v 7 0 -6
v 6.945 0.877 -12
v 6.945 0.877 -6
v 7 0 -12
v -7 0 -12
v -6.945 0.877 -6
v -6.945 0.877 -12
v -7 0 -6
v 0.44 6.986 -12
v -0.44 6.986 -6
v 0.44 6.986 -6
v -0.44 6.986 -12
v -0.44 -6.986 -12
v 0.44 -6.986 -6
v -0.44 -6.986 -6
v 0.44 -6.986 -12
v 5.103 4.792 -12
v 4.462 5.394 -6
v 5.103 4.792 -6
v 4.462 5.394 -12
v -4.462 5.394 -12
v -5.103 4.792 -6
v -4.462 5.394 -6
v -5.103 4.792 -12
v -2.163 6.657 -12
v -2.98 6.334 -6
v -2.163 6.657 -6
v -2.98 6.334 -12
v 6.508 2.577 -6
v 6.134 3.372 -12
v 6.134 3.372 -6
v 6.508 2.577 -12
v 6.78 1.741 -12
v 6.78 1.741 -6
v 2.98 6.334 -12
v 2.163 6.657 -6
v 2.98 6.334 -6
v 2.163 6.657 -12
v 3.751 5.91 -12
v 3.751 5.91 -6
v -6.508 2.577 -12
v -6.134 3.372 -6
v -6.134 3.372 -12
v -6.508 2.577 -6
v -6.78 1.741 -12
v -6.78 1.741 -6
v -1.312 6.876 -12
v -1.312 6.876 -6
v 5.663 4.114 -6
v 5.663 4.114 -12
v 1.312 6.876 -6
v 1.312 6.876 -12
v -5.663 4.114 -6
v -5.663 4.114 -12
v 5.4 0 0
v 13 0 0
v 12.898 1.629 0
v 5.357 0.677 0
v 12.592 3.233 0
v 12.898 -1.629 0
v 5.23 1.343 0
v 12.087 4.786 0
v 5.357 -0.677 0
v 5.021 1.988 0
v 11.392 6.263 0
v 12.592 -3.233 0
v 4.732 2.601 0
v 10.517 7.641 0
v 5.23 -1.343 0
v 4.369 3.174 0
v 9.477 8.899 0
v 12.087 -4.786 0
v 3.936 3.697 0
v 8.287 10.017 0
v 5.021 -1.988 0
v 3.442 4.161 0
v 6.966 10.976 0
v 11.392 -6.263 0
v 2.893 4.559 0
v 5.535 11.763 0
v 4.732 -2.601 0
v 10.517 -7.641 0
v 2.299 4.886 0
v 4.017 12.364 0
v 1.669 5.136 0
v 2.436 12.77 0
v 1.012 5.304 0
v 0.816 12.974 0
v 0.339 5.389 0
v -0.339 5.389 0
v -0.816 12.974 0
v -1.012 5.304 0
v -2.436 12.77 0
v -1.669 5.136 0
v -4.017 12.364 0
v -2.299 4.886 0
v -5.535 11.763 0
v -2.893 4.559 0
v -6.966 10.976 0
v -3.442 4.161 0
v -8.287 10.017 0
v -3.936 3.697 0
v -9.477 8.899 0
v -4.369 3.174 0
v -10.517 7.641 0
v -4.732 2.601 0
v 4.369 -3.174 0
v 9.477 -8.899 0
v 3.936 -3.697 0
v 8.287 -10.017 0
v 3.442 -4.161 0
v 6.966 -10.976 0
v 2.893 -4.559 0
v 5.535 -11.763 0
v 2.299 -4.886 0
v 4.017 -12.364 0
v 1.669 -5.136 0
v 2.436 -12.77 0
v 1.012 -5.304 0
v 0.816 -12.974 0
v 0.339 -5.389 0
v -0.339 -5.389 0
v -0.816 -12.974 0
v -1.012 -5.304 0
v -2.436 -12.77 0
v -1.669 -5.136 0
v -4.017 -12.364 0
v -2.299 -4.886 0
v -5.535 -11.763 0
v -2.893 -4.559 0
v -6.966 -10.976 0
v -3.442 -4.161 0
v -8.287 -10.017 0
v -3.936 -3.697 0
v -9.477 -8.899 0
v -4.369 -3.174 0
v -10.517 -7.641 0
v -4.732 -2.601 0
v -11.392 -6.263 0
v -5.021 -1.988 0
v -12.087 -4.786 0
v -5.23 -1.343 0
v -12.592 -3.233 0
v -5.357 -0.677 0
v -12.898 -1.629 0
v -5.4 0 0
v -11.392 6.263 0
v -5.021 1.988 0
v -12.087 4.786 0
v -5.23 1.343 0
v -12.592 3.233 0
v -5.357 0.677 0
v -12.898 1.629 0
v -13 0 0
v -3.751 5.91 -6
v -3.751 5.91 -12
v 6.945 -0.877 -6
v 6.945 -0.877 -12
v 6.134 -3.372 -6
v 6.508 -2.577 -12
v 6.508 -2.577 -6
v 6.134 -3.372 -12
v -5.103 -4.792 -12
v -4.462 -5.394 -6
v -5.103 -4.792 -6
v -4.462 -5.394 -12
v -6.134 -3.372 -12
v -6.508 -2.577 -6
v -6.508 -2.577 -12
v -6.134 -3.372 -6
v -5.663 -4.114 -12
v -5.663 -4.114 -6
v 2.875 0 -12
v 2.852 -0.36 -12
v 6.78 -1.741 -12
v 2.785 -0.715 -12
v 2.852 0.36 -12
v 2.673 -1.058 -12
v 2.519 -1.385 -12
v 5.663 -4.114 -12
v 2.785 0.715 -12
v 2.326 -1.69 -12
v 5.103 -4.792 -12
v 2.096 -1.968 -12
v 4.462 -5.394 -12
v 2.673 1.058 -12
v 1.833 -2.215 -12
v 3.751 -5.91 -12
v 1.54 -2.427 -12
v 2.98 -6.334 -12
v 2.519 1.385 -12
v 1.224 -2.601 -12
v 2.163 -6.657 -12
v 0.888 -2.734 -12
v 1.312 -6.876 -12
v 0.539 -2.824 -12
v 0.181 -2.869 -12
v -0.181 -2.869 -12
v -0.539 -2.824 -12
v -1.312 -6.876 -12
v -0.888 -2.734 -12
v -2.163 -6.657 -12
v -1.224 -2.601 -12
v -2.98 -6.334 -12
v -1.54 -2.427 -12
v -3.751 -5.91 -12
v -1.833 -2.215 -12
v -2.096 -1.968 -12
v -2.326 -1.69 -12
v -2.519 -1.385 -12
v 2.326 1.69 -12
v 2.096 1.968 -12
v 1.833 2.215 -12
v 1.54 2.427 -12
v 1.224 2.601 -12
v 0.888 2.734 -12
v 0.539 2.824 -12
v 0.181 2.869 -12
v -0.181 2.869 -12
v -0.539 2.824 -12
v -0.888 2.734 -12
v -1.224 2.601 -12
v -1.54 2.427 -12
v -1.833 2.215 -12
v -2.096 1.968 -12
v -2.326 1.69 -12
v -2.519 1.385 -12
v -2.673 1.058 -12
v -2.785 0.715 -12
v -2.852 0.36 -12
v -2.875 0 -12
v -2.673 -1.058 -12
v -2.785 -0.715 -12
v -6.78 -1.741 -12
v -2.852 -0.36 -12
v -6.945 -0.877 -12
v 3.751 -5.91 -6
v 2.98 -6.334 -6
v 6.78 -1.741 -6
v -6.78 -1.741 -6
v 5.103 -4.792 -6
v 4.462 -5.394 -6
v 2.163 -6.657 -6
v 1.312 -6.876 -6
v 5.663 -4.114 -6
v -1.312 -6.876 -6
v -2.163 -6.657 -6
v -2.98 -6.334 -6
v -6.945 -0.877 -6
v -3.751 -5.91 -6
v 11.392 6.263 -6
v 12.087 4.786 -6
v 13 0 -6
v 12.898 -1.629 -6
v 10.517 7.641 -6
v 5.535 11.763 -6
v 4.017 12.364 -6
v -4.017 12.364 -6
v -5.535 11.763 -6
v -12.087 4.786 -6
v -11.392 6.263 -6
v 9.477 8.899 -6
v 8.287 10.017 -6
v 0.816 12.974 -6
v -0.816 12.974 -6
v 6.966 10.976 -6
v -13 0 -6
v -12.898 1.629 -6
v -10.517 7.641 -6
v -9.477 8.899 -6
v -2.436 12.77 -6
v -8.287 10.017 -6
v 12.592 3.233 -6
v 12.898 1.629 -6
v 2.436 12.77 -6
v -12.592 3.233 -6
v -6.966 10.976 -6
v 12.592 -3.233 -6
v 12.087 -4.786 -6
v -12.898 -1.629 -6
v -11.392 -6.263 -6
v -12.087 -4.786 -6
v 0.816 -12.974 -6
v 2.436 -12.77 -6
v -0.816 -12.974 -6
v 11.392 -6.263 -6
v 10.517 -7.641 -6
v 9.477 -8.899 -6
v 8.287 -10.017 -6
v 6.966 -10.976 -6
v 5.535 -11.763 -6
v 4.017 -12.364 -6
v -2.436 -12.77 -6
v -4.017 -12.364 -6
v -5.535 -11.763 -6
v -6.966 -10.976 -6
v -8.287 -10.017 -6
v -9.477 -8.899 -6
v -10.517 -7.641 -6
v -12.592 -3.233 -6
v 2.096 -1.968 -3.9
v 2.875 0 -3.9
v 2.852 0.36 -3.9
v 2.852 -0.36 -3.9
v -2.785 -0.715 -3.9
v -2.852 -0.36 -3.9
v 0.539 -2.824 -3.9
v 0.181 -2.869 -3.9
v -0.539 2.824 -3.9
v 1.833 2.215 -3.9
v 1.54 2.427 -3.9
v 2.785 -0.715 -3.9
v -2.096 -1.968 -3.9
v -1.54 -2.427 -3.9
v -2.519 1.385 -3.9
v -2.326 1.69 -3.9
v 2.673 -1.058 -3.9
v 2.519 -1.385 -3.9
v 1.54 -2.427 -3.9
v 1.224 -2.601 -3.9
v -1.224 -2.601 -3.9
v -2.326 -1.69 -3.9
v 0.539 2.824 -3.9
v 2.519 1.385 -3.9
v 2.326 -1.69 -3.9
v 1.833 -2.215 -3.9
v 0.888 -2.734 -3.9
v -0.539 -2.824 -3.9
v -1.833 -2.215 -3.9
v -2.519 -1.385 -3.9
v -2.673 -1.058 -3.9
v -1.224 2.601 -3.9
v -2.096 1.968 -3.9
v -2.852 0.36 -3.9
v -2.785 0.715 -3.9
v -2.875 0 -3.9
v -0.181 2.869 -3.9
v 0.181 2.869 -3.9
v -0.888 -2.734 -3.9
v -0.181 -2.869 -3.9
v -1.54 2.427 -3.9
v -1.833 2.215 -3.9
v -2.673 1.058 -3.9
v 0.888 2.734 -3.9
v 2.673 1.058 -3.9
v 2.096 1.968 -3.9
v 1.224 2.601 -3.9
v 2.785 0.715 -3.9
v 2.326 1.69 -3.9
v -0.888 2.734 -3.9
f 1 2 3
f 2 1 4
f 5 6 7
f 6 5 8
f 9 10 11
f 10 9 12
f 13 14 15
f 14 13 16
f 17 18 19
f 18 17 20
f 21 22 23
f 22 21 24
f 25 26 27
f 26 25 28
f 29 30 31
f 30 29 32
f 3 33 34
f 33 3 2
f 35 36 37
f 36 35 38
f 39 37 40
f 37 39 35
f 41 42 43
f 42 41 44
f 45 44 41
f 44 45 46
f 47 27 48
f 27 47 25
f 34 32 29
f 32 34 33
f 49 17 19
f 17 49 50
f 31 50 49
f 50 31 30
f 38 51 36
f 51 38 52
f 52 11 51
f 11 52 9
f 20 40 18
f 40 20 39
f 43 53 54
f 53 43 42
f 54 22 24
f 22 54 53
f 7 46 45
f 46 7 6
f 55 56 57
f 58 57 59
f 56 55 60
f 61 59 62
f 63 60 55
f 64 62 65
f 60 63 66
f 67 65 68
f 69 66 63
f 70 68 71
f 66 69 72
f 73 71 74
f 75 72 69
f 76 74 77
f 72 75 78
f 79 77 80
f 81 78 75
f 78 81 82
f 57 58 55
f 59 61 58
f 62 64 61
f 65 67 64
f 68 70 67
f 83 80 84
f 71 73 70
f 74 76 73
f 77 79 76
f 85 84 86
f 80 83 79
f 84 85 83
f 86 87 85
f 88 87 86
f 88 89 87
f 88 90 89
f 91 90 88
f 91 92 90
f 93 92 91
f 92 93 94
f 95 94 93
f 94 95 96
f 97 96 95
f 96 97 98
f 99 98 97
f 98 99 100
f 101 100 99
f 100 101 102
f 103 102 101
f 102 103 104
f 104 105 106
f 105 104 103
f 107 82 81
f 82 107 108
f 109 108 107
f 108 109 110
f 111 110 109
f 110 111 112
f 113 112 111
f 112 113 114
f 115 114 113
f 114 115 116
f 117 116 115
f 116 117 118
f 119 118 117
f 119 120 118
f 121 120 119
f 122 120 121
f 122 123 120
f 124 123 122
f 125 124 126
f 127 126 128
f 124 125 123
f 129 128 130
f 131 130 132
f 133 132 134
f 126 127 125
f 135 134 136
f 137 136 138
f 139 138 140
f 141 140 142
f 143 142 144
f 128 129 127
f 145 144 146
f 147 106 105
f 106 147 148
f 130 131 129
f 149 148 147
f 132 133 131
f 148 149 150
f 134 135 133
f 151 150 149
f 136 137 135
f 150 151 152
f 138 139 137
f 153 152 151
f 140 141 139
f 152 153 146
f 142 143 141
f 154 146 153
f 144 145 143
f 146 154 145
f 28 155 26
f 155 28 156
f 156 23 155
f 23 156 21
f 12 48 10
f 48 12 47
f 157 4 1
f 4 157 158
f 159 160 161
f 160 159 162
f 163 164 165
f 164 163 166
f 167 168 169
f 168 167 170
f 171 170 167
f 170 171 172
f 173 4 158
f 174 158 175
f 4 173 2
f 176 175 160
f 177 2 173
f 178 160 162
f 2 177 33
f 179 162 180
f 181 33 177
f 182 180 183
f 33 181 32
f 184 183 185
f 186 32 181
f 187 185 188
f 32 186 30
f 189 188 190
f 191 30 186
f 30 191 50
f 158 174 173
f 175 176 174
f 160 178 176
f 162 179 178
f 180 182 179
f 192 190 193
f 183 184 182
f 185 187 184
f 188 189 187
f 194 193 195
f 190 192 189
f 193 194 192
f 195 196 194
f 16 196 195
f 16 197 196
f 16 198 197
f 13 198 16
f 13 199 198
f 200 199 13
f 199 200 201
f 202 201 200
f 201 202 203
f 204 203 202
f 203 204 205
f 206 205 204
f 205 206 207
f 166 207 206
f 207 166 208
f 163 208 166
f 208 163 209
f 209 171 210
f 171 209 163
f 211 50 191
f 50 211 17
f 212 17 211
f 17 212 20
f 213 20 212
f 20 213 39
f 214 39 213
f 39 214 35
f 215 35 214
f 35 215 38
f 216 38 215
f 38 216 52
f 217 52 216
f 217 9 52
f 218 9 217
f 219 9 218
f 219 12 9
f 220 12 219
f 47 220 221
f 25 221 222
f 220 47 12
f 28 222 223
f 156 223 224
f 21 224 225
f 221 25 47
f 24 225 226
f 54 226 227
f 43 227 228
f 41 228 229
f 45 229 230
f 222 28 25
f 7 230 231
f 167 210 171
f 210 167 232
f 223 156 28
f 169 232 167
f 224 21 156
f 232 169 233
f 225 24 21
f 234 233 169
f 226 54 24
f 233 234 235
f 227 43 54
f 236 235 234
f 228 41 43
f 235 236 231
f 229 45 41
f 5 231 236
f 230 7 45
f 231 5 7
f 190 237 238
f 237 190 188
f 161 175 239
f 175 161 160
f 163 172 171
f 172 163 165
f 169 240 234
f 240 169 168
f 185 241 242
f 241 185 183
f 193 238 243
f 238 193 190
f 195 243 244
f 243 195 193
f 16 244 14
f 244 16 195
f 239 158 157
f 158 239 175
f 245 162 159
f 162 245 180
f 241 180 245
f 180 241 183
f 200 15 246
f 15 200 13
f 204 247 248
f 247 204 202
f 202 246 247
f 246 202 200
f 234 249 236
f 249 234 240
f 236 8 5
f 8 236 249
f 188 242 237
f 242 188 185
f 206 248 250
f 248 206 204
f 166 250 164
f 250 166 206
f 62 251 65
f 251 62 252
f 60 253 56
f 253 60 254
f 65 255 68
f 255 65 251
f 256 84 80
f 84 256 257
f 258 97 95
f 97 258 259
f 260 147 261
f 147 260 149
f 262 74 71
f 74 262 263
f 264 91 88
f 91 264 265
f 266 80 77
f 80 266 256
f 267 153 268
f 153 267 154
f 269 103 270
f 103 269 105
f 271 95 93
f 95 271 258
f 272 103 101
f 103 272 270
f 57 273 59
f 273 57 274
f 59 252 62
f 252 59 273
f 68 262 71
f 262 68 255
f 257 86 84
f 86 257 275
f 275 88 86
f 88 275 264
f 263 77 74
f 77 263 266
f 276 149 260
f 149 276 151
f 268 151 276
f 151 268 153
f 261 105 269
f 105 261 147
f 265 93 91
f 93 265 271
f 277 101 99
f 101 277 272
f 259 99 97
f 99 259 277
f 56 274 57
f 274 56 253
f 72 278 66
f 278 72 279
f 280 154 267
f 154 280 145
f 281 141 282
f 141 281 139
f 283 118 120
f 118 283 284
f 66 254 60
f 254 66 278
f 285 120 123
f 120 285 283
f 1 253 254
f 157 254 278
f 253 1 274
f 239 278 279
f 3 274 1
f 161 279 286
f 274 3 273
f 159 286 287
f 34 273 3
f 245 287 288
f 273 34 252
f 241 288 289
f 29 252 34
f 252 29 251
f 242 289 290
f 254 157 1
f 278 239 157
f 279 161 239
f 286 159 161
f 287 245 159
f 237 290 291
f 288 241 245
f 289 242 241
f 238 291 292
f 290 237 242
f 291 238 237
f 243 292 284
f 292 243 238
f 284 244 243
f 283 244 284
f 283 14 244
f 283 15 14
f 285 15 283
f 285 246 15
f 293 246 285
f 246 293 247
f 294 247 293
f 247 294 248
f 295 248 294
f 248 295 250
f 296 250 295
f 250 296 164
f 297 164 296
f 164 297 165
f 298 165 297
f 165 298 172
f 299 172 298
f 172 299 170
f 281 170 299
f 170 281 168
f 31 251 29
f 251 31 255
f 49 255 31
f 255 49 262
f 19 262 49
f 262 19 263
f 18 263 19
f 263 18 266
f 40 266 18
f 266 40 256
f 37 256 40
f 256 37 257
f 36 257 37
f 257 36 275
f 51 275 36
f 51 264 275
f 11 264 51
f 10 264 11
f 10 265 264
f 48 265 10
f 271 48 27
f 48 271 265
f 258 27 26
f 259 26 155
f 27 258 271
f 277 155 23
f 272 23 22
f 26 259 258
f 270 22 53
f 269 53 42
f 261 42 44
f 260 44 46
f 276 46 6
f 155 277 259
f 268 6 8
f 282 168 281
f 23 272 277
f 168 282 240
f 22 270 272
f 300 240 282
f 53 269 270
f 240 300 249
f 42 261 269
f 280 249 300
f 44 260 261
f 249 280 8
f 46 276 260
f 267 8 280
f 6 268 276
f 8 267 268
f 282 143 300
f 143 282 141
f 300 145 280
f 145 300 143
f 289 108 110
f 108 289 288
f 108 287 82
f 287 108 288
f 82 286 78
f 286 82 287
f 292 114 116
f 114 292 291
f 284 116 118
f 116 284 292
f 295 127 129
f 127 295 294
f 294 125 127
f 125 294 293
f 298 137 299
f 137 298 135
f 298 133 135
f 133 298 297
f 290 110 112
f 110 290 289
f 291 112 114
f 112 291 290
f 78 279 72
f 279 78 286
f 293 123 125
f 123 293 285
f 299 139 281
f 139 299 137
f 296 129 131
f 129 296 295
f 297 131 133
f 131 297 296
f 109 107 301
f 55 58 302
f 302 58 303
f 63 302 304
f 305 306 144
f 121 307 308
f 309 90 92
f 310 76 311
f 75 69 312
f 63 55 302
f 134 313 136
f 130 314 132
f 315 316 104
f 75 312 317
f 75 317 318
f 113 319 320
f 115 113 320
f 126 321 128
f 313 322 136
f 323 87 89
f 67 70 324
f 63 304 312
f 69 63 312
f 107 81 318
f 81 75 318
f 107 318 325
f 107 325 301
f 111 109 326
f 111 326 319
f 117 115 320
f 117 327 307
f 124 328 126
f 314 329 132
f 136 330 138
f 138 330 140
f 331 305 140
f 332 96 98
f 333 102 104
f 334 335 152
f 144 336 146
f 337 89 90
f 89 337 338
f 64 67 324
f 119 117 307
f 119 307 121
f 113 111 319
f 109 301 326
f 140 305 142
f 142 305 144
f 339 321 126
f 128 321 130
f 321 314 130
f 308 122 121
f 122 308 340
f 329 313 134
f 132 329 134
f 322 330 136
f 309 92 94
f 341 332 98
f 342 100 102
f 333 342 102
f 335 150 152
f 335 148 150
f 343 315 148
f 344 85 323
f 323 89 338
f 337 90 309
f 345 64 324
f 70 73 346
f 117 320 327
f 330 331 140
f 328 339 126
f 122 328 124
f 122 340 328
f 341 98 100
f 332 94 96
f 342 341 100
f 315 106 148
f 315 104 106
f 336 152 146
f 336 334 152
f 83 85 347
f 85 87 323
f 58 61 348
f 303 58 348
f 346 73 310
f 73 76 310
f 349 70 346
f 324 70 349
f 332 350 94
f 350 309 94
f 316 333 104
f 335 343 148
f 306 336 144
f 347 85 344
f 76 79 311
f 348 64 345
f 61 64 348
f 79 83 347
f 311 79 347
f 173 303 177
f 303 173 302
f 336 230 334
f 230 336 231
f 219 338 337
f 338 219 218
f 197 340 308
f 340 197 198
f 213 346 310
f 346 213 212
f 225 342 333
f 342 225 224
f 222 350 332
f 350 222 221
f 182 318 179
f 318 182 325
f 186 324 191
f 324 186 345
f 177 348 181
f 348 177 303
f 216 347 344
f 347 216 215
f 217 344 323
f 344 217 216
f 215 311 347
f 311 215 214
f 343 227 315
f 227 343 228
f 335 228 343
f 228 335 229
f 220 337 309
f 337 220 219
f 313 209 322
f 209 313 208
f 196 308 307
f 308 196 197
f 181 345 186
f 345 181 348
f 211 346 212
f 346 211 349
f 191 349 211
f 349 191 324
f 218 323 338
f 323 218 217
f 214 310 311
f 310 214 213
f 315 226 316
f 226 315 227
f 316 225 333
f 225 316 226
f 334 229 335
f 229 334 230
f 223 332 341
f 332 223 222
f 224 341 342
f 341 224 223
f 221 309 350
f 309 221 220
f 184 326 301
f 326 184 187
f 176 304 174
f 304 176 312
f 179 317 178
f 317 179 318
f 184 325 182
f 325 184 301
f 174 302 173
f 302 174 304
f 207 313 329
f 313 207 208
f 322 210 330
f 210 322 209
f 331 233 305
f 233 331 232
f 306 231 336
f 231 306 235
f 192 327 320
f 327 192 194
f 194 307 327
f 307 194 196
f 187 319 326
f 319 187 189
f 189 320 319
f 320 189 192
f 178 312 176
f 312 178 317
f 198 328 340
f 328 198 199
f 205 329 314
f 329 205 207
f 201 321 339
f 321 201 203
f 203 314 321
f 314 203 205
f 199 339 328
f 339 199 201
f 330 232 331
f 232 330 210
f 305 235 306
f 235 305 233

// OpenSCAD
$fn = 50;


difference() {
	union() {
		translate(v = [0, 0, -12.0000000000]) {
			cylinder(h = 12, r = 7.0000000000);
		}
		translate(v = [0, 0, -6.0000000000]) {
			cylinder(h = 6, r = 13.0000000000);
		}
	}
	union() {
		translate(v = [0, 0, 0]) {
			rotate(a = [0, 0, 0]) {
				difference() {
					union() {
						#translate(v = [0, 0, -12.0000000000]) {
							cylinder(h = 12, r = 2.6000000000);
						}
						#translate(v = [0, 0, -3.9000000000]) {
							cylinder(h = 3.9000000000, r = 7.0000000000, r1 = 2.8750000000, r2 = 5.4000000000);
						}
						#translate(v = [0, 0, -12.0000000000]) {
							cylinder(h = 12, r = 2.8750000000);
						}
						#translate(v = [0, 0, -12.0000000000]) {
							cylinder(h = 12, r = 2.6000000000);
						}
					}
					union();
				}
			}
		}
	}
}
